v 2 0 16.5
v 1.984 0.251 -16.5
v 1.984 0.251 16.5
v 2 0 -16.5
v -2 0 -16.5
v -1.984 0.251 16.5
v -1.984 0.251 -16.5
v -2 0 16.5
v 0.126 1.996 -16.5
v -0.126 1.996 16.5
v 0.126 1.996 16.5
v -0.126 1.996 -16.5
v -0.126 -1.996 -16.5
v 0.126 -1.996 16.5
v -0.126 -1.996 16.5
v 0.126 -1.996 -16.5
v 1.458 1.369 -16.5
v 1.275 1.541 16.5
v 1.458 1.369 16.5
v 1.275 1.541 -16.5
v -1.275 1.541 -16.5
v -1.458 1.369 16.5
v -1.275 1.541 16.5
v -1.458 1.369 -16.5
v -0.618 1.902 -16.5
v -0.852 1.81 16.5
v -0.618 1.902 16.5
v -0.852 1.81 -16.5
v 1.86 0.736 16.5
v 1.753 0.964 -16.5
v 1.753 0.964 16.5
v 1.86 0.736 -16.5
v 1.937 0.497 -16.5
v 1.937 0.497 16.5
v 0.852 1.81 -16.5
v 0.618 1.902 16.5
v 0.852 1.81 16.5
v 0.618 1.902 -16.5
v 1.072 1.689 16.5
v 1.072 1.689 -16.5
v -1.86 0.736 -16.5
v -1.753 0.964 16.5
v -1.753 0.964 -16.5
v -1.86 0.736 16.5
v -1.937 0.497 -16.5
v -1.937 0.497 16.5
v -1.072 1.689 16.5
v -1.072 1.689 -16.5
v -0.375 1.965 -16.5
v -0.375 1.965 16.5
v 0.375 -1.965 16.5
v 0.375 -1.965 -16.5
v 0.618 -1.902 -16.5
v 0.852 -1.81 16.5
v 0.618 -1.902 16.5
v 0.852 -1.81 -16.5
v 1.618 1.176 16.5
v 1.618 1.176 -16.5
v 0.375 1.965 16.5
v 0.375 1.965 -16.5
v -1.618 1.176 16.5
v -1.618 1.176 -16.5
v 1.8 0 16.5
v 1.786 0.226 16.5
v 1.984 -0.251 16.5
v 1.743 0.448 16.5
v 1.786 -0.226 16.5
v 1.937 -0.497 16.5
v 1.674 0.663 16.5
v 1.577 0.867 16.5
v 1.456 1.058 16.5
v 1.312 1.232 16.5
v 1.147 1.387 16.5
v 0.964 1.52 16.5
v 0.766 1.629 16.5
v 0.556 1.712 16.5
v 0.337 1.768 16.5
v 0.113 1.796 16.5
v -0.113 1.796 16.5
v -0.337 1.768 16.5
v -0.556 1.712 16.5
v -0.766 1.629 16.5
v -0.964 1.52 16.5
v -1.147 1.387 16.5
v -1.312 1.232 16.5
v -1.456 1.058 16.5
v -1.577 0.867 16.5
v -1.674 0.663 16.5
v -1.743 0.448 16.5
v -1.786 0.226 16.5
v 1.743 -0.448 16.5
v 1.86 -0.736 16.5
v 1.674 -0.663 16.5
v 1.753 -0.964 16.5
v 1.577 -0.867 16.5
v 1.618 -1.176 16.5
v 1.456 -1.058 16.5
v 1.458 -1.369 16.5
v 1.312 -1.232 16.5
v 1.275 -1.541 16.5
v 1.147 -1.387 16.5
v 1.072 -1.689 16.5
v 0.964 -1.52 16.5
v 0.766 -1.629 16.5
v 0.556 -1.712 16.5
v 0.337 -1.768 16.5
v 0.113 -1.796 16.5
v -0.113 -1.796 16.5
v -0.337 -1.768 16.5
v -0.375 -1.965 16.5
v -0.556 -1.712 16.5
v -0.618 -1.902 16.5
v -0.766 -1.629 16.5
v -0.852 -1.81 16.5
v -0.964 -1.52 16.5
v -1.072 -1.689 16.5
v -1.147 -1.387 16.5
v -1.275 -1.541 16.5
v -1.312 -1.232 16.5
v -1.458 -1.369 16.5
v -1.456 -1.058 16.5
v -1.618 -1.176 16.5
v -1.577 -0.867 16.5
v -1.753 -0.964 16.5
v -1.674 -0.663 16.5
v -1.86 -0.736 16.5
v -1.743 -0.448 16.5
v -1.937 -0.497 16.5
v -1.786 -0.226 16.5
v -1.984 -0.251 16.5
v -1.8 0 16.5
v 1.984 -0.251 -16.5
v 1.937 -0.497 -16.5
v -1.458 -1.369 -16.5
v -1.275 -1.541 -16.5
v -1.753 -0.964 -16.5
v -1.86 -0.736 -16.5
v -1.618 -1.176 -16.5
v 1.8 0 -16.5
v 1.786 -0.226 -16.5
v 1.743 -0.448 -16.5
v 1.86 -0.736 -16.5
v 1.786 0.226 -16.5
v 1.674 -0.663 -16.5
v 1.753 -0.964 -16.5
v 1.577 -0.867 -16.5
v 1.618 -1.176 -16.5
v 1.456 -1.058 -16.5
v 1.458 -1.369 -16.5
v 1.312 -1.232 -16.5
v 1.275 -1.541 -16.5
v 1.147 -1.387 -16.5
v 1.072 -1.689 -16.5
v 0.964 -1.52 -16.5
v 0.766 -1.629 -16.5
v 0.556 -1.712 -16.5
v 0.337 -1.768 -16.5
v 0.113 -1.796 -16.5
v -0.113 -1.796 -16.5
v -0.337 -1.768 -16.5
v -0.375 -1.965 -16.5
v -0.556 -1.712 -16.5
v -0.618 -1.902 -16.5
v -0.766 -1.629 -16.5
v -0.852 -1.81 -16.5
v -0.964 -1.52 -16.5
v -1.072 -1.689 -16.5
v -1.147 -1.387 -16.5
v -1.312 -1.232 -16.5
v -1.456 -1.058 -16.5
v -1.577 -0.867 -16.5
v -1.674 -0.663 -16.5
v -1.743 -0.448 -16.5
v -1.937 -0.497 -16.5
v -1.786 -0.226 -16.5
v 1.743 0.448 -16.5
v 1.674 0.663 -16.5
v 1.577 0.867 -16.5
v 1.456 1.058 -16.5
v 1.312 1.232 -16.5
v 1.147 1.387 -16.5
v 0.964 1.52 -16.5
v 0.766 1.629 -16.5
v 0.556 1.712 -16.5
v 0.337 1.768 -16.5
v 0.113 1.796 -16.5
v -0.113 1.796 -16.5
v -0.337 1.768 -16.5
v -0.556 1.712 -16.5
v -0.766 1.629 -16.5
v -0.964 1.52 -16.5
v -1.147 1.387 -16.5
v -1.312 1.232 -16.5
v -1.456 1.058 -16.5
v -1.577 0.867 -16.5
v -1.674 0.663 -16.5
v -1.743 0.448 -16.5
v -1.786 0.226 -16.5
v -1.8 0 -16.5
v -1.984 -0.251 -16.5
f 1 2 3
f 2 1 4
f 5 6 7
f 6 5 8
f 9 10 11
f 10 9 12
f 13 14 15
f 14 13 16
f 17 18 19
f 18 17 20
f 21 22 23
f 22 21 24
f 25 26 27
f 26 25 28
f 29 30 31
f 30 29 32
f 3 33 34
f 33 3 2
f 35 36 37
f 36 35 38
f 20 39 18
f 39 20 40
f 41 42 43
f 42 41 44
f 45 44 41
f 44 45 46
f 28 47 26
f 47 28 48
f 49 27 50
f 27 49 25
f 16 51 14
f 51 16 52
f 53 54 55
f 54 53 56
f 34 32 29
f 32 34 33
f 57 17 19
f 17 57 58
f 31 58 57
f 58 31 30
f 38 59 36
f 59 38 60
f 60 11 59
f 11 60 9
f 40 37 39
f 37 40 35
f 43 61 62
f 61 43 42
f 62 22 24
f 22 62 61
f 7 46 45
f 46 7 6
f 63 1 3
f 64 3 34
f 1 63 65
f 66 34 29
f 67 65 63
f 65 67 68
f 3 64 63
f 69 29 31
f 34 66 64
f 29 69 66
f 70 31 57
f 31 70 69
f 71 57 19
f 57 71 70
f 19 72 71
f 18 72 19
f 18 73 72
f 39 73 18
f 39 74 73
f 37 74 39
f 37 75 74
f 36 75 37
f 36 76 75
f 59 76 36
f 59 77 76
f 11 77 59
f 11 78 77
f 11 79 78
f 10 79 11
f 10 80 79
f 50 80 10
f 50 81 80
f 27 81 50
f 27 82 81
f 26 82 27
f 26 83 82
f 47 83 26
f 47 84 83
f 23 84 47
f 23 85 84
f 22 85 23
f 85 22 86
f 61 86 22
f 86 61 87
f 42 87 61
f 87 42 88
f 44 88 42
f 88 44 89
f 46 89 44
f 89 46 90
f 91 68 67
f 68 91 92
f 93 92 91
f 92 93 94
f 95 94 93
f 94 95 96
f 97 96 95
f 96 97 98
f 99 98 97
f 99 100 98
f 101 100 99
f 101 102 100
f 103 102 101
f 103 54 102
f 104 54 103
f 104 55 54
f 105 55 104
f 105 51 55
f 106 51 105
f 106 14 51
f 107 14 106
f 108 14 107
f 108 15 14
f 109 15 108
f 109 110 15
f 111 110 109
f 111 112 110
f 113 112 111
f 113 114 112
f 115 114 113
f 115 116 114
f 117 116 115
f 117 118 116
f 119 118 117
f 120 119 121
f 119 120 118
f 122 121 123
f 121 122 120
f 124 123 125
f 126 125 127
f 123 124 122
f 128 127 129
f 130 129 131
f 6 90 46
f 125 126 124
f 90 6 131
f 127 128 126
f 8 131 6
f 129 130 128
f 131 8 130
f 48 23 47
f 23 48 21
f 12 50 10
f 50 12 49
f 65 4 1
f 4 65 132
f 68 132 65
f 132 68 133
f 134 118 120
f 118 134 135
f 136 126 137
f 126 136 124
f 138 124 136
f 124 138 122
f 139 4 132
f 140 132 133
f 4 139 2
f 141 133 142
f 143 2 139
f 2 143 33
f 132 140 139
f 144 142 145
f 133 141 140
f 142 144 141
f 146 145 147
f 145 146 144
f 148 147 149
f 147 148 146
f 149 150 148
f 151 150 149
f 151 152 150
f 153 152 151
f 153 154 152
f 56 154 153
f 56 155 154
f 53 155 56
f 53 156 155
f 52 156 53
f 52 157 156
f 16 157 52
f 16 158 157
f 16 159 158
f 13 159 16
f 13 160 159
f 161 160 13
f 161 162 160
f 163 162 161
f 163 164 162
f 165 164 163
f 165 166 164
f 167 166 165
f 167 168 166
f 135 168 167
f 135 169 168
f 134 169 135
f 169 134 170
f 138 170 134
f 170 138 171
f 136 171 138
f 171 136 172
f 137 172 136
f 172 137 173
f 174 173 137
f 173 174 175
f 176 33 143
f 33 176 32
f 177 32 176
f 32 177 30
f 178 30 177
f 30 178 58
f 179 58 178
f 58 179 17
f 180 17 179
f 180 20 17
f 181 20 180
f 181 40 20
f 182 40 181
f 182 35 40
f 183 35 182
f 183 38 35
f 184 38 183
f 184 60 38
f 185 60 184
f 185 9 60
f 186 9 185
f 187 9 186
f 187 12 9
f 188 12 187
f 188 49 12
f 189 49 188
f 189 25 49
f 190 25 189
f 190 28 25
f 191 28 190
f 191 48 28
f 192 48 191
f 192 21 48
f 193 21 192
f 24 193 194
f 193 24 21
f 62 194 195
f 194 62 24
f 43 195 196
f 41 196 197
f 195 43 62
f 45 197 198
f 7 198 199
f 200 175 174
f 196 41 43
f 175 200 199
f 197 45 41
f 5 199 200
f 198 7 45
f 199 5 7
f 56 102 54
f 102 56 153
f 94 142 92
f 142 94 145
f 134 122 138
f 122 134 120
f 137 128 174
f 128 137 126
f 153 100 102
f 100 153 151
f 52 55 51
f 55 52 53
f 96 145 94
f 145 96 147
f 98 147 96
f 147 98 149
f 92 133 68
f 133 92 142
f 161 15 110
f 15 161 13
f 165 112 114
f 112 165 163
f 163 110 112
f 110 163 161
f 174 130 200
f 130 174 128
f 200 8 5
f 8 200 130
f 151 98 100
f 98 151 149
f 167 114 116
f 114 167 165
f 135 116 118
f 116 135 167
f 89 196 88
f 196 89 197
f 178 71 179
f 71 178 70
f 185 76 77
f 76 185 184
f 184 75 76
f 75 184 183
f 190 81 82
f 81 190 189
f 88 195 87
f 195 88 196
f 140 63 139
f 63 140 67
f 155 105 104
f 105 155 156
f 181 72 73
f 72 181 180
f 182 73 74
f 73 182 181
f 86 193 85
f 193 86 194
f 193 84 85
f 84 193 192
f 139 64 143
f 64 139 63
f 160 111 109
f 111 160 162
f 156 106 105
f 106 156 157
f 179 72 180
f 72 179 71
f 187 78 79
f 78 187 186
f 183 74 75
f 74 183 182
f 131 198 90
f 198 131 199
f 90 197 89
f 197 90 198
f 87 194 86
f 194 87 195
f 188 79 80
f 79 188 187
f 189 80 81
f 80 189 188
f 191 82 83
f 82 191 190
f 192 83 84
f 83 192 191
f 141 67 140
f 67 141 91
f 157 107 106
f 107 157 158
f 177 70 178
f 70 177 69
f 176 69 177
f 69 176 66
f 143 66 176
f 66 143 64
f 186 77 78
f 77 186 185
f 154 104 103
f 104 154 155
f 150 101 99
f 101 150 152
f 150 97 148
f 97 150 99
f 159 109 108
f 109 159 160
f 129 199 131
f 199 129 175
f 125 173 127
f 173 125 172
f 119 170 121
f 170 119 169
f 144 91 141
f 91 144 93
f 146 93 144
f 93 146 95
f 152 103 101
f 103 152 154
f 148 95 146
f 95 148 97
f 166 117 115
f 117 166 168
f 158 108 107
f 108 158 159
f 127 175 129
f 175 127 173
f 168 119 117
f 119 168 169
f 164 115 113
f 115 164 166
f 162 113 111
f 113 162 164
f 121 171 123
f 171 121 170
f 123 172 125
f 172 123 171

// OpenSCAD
$fn = 50;


difference() {
	union() {
		translate(v = [0, 0, -16.5000000000]) {
			cylinder(h = 33, r = 2.0000000000);
		}
	}
	union() {
		translate(v = [0, 0, -100.0000000000]) {
			cylinder(h = 200, r = 1.8000000000);
		}
	}
}
